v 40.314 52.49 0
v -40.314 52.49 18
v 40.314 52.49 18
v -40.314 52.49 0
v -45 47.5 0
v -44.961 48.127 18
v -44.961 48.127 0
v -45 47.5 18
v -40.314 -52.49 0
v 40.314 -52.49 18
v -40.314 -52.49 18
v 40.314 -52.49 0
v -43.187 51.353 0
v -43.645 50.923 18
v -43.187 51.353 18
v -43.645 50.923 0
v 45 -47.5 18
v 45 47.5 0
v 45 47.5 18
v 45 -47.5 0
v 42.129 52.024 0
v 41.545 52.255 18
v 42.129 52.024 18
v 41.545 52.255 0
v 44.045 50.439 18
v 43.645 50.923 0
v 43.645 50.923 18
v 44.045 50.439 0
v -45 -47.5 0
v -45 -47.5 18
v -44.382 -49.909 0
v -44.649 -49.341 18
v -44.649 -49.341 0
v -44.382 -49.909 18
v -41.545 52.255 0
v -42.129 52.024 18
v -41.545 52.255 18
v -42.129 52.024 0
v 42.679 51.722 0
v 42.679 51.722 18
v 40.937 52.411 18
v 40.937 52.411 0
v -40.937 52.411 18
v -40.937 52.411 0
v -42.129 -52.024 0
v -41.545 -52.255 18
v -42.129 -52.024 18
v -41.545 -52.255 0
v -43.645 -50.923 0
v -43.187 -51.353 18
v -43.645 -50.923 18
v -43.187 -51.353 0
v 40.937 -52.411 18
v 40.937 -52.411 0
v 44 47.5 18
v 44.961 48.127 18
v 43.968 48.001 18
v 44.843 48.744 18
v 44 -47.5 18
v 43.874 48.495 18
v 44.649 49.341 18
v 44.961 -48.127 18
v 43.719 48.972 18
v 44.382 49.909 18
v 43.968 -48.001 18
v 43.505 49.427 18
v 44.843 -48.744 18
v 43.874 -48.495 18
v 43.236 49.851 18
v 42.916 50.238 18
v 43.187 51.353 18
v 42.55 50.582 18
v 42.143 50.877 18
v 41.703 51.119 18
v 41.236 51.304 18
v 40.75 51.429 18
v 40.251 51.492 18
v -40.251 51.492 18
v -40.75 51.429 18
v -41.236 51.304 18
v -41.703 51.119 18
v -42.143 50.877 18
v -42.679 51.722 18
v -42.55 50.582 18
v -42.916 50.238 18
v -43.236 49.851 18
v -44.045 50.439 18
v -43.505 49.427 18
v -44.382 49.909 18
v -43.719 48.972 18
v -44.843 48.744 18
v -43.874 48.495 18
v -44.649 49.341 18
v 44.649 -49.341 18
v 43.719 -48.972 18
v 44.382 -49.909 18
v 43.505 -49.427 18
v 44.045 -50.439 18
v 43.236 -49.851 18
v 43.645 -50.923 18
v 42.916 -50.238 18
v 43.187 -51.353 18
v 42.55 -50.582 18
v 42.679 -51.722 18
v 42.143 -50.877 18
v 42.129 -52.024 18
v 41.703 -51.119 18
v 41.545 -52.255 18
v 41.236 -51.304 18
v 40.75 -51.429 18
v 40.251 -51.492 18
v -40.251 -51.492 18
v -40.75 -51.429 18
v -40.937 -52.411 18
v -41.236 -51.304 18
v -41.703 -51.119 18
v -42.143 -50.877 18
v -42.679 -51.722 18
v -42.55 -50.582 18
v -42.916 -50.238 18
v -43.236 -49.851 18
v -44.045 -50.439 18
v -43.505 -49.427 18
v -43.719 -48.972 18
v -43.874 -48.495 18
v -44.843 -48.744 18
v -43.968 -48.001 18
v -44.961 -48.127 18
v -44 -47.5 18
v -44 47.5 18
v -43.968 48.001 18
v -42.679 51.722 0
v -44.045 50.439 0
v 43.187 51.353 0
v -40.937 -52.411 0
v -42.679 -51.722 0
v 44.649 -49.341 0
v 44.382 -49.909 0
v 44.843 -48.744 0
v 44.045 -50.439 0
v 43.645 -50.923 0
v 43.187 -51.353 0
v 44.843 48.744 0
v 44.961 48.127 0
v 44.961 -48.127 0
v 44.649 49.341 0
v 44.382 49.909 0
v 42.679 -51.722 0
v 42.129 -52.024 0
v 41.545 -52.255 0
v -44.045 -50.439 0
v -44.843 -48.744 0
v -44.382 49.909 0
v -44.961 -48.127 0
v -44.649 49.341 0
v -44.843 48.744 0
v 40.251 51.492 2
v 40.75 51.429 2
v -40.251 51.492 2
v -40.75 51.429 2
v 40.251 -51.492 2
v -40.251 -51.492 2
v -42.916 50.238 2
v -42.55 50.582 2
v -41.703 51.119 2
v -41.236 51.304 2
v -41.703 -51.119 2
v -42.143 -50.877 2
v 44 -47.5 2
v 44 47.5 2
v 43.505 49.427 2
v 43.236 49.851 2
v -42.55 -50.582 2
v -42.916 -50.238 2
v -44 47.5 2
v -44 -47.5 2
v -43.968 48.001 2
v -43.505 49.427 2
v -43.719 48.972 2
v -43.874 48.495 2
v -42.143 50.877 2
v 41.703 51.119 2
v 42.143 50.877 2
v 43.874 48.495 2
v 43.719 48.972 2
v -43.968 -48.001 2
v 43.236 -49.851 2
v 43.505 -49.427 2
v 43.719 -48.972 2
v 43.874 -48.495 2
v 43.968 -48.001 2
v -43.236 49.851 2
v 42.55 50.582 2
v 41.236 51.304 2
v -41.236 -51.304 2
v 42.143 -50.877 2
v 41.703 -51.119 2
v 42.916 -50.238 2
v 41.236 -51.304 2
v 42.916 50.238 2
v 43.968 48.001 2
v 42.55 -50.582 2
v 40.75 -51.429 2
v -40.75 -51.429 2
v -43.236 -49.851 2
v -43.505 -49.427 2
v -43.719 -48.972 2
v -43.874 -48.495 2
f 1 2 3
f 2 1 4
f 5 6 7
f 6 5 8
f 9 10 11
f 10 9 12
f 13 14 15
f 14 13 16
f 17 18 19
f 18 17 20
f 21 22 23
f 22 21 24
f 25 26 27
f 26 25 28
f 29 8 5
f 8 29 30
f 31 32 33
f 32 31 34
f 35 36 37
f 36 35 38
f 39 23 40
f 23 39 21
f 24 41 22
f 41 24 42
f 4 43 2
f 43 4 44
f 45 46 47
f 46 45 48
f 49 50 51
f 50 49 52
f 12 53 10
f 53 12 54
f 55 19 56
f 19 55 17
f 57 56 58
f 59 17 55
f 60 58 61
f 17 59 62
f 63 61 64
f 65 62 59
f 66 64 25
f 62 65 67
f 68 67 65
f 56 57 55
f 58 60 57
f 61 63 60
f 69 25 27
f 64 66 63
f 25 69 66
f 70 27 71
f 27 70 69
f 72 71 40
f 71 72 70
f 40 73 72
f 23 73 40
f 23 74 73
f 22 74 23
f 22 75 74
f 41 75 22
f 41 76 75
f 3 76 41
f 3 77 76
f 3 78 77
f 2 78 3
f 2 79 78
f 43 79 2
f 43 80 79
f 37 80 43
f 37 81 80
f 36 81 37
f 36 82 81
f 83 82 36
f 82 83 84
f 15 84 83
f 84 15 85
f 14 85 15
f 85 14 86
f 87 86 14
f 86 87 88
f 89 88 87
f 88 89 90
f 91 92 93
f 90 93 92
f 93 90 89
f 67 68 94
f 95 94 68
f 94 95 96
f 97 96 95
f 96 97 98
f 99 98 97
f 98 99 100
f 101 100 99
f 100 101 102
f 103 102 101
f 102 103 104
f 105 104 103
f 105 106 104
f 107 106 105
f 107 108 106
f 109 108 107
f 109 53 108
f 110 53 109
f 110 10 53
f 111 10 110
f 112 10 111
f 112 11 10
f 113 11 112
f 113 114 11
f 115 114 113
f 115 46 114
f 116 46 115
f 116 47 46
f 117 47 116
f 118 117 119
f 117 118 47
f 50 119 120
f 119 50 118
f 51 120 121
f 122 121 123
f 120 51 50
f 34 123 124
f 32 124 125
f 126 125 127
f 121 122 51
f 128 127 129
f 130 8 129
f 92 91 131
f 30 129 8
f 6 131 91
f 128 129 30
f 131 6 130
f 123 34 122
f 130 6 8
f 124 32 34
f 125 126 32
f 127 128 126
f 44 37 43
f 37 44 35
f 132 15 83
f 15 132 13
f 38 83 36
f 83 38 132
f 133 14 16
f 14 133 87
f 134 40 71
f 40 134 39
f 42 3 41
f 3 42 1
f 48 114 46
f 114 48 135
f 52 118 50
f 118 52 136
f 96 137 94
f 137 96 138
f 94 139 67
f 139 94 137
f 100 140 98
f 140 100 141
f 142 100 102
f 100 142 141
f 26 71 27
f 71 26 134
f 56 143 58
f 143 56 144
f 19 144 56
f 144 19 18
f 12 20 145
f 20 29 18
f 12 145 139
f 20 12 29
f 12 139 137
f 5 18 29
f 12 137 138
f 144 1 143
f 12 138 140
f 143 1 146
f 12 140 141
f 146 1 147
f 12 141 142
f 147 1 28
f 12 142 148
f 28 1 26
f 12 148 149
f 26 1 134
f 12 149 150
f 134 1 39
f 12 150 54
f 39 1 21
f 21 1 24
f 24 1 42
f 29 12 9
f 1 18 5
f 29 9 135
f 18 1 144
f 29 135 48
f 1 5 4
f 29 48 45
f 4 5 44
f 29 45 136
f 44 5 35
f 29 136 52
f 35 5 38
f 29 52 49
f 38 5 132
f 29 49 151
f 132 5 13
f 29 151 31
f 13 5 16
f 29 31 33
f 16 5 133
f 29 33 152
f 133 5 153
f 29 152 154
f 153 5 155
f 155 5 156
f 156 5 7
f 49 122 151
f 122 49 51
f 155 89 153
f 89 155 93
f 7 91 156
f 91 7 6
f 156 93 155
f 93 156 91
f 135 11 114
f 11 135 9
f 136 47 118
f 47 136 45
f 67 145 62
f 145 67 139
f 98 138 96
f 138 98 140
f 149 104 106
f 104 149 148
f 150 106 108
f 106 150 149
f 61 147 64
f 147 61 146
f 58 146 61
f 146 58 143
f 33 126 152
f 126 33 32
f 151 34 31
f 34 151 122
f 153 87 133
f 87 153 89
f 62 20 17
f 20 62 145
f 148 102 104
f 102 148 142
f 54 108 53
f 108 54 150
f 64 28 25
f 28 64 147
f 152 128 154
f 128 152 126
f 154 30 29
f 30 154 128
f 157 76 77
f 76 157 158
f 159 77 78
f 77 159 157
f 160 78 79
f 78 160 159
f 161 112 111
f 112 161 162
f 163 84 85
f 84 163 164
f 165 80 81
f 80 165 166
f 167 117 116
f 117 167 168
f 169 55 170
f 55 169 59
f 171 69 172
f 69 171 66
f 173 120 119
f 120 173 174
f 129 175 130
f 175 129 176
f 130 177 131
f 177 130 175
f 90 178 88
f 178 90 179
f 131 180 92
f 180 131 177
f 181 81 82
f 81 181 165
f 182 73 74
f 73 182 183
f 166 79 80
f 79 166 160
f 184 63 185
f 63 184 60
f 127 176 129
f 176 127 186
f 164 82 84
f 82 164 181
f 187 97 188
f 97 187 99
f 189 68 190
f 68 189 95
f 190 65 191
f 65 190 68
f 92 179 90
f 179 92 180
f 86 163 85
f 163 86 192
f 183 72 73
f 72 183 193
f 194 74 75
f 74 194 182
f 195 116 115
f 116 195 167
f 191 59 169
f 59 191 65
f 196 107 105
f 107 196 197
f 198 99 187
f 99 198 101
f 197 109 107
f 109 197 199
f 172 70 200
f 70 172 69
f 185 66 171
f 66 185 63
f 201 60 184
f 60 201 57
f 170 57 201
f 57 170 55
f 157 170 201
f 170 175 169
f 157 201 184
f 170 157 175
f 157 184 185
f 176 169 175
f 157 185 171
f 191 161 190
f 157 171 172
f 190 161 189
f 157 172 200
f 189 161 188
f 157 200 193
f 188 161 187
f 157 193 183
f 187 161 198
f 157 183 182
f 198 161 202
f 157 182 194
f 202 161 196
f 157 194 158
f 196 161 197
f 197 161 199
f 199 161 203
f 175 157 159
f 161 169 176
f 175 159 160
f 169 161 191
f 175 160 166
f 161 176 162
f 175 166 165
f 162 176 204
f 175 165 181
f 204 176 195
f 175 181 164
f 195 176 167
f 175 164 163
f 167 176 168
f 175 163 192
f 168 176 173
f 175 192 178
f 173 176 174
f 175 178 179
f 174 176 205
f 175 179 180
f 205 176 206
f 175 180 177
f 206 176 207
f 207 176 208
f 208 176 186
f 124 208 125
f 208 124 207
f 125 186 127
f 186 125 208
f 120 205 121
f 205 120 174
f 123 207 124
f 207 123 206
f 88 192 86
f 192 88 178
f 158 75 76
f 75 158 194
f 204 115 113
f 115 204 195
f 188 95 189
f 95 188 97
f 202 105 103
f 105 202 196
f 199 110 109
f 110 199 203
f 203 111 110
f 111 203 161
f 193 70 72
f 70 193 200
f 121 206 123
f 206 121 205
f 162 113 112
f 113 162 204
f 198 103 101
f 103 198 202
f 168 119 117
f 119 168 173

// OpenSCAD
$fn = 50;


difference() {
	union() {
		hull() {
			translate(v = [-40.0000000000, 47.5000000000, 0]) {
				cylinder(h = 18, r = 5);
			}
			translate(v = [40.0000000000, 47.5000000000, 0]) {
				cylinder(h = 18, r = 5);
			}
			translate(v = [-40.0000000000, -47.5000000000, 0]) {
				cylinder(h = 18, r = 5);
			}
			translate(v = [40.0000000000, -47.5000000000, 0]) {
				cylinder(h = 18, r = 5);
			}
		}
	}
	union() {
		translate(v = [0, 0, 2]) {
			hull() {
				translate(v = [-40.0000000000, 47.5000000000, 0]) {
					cylinder(h = 16, r = 4);
				}
				translate(v = [40.0000000000, 47.5000000000, 0]) {
					cylinder(h = 16, r = 4);
				}
				translate(v = [-40.0000000000, -47.5000000000, 0]) {
					cylinder(h = 16, r = 4);
				}
				translate(v = [40.0000000000, -47.5000000000, 0]) {
					cylinder(h = 16, r = 4);
				}
			}
		}
	}
}
